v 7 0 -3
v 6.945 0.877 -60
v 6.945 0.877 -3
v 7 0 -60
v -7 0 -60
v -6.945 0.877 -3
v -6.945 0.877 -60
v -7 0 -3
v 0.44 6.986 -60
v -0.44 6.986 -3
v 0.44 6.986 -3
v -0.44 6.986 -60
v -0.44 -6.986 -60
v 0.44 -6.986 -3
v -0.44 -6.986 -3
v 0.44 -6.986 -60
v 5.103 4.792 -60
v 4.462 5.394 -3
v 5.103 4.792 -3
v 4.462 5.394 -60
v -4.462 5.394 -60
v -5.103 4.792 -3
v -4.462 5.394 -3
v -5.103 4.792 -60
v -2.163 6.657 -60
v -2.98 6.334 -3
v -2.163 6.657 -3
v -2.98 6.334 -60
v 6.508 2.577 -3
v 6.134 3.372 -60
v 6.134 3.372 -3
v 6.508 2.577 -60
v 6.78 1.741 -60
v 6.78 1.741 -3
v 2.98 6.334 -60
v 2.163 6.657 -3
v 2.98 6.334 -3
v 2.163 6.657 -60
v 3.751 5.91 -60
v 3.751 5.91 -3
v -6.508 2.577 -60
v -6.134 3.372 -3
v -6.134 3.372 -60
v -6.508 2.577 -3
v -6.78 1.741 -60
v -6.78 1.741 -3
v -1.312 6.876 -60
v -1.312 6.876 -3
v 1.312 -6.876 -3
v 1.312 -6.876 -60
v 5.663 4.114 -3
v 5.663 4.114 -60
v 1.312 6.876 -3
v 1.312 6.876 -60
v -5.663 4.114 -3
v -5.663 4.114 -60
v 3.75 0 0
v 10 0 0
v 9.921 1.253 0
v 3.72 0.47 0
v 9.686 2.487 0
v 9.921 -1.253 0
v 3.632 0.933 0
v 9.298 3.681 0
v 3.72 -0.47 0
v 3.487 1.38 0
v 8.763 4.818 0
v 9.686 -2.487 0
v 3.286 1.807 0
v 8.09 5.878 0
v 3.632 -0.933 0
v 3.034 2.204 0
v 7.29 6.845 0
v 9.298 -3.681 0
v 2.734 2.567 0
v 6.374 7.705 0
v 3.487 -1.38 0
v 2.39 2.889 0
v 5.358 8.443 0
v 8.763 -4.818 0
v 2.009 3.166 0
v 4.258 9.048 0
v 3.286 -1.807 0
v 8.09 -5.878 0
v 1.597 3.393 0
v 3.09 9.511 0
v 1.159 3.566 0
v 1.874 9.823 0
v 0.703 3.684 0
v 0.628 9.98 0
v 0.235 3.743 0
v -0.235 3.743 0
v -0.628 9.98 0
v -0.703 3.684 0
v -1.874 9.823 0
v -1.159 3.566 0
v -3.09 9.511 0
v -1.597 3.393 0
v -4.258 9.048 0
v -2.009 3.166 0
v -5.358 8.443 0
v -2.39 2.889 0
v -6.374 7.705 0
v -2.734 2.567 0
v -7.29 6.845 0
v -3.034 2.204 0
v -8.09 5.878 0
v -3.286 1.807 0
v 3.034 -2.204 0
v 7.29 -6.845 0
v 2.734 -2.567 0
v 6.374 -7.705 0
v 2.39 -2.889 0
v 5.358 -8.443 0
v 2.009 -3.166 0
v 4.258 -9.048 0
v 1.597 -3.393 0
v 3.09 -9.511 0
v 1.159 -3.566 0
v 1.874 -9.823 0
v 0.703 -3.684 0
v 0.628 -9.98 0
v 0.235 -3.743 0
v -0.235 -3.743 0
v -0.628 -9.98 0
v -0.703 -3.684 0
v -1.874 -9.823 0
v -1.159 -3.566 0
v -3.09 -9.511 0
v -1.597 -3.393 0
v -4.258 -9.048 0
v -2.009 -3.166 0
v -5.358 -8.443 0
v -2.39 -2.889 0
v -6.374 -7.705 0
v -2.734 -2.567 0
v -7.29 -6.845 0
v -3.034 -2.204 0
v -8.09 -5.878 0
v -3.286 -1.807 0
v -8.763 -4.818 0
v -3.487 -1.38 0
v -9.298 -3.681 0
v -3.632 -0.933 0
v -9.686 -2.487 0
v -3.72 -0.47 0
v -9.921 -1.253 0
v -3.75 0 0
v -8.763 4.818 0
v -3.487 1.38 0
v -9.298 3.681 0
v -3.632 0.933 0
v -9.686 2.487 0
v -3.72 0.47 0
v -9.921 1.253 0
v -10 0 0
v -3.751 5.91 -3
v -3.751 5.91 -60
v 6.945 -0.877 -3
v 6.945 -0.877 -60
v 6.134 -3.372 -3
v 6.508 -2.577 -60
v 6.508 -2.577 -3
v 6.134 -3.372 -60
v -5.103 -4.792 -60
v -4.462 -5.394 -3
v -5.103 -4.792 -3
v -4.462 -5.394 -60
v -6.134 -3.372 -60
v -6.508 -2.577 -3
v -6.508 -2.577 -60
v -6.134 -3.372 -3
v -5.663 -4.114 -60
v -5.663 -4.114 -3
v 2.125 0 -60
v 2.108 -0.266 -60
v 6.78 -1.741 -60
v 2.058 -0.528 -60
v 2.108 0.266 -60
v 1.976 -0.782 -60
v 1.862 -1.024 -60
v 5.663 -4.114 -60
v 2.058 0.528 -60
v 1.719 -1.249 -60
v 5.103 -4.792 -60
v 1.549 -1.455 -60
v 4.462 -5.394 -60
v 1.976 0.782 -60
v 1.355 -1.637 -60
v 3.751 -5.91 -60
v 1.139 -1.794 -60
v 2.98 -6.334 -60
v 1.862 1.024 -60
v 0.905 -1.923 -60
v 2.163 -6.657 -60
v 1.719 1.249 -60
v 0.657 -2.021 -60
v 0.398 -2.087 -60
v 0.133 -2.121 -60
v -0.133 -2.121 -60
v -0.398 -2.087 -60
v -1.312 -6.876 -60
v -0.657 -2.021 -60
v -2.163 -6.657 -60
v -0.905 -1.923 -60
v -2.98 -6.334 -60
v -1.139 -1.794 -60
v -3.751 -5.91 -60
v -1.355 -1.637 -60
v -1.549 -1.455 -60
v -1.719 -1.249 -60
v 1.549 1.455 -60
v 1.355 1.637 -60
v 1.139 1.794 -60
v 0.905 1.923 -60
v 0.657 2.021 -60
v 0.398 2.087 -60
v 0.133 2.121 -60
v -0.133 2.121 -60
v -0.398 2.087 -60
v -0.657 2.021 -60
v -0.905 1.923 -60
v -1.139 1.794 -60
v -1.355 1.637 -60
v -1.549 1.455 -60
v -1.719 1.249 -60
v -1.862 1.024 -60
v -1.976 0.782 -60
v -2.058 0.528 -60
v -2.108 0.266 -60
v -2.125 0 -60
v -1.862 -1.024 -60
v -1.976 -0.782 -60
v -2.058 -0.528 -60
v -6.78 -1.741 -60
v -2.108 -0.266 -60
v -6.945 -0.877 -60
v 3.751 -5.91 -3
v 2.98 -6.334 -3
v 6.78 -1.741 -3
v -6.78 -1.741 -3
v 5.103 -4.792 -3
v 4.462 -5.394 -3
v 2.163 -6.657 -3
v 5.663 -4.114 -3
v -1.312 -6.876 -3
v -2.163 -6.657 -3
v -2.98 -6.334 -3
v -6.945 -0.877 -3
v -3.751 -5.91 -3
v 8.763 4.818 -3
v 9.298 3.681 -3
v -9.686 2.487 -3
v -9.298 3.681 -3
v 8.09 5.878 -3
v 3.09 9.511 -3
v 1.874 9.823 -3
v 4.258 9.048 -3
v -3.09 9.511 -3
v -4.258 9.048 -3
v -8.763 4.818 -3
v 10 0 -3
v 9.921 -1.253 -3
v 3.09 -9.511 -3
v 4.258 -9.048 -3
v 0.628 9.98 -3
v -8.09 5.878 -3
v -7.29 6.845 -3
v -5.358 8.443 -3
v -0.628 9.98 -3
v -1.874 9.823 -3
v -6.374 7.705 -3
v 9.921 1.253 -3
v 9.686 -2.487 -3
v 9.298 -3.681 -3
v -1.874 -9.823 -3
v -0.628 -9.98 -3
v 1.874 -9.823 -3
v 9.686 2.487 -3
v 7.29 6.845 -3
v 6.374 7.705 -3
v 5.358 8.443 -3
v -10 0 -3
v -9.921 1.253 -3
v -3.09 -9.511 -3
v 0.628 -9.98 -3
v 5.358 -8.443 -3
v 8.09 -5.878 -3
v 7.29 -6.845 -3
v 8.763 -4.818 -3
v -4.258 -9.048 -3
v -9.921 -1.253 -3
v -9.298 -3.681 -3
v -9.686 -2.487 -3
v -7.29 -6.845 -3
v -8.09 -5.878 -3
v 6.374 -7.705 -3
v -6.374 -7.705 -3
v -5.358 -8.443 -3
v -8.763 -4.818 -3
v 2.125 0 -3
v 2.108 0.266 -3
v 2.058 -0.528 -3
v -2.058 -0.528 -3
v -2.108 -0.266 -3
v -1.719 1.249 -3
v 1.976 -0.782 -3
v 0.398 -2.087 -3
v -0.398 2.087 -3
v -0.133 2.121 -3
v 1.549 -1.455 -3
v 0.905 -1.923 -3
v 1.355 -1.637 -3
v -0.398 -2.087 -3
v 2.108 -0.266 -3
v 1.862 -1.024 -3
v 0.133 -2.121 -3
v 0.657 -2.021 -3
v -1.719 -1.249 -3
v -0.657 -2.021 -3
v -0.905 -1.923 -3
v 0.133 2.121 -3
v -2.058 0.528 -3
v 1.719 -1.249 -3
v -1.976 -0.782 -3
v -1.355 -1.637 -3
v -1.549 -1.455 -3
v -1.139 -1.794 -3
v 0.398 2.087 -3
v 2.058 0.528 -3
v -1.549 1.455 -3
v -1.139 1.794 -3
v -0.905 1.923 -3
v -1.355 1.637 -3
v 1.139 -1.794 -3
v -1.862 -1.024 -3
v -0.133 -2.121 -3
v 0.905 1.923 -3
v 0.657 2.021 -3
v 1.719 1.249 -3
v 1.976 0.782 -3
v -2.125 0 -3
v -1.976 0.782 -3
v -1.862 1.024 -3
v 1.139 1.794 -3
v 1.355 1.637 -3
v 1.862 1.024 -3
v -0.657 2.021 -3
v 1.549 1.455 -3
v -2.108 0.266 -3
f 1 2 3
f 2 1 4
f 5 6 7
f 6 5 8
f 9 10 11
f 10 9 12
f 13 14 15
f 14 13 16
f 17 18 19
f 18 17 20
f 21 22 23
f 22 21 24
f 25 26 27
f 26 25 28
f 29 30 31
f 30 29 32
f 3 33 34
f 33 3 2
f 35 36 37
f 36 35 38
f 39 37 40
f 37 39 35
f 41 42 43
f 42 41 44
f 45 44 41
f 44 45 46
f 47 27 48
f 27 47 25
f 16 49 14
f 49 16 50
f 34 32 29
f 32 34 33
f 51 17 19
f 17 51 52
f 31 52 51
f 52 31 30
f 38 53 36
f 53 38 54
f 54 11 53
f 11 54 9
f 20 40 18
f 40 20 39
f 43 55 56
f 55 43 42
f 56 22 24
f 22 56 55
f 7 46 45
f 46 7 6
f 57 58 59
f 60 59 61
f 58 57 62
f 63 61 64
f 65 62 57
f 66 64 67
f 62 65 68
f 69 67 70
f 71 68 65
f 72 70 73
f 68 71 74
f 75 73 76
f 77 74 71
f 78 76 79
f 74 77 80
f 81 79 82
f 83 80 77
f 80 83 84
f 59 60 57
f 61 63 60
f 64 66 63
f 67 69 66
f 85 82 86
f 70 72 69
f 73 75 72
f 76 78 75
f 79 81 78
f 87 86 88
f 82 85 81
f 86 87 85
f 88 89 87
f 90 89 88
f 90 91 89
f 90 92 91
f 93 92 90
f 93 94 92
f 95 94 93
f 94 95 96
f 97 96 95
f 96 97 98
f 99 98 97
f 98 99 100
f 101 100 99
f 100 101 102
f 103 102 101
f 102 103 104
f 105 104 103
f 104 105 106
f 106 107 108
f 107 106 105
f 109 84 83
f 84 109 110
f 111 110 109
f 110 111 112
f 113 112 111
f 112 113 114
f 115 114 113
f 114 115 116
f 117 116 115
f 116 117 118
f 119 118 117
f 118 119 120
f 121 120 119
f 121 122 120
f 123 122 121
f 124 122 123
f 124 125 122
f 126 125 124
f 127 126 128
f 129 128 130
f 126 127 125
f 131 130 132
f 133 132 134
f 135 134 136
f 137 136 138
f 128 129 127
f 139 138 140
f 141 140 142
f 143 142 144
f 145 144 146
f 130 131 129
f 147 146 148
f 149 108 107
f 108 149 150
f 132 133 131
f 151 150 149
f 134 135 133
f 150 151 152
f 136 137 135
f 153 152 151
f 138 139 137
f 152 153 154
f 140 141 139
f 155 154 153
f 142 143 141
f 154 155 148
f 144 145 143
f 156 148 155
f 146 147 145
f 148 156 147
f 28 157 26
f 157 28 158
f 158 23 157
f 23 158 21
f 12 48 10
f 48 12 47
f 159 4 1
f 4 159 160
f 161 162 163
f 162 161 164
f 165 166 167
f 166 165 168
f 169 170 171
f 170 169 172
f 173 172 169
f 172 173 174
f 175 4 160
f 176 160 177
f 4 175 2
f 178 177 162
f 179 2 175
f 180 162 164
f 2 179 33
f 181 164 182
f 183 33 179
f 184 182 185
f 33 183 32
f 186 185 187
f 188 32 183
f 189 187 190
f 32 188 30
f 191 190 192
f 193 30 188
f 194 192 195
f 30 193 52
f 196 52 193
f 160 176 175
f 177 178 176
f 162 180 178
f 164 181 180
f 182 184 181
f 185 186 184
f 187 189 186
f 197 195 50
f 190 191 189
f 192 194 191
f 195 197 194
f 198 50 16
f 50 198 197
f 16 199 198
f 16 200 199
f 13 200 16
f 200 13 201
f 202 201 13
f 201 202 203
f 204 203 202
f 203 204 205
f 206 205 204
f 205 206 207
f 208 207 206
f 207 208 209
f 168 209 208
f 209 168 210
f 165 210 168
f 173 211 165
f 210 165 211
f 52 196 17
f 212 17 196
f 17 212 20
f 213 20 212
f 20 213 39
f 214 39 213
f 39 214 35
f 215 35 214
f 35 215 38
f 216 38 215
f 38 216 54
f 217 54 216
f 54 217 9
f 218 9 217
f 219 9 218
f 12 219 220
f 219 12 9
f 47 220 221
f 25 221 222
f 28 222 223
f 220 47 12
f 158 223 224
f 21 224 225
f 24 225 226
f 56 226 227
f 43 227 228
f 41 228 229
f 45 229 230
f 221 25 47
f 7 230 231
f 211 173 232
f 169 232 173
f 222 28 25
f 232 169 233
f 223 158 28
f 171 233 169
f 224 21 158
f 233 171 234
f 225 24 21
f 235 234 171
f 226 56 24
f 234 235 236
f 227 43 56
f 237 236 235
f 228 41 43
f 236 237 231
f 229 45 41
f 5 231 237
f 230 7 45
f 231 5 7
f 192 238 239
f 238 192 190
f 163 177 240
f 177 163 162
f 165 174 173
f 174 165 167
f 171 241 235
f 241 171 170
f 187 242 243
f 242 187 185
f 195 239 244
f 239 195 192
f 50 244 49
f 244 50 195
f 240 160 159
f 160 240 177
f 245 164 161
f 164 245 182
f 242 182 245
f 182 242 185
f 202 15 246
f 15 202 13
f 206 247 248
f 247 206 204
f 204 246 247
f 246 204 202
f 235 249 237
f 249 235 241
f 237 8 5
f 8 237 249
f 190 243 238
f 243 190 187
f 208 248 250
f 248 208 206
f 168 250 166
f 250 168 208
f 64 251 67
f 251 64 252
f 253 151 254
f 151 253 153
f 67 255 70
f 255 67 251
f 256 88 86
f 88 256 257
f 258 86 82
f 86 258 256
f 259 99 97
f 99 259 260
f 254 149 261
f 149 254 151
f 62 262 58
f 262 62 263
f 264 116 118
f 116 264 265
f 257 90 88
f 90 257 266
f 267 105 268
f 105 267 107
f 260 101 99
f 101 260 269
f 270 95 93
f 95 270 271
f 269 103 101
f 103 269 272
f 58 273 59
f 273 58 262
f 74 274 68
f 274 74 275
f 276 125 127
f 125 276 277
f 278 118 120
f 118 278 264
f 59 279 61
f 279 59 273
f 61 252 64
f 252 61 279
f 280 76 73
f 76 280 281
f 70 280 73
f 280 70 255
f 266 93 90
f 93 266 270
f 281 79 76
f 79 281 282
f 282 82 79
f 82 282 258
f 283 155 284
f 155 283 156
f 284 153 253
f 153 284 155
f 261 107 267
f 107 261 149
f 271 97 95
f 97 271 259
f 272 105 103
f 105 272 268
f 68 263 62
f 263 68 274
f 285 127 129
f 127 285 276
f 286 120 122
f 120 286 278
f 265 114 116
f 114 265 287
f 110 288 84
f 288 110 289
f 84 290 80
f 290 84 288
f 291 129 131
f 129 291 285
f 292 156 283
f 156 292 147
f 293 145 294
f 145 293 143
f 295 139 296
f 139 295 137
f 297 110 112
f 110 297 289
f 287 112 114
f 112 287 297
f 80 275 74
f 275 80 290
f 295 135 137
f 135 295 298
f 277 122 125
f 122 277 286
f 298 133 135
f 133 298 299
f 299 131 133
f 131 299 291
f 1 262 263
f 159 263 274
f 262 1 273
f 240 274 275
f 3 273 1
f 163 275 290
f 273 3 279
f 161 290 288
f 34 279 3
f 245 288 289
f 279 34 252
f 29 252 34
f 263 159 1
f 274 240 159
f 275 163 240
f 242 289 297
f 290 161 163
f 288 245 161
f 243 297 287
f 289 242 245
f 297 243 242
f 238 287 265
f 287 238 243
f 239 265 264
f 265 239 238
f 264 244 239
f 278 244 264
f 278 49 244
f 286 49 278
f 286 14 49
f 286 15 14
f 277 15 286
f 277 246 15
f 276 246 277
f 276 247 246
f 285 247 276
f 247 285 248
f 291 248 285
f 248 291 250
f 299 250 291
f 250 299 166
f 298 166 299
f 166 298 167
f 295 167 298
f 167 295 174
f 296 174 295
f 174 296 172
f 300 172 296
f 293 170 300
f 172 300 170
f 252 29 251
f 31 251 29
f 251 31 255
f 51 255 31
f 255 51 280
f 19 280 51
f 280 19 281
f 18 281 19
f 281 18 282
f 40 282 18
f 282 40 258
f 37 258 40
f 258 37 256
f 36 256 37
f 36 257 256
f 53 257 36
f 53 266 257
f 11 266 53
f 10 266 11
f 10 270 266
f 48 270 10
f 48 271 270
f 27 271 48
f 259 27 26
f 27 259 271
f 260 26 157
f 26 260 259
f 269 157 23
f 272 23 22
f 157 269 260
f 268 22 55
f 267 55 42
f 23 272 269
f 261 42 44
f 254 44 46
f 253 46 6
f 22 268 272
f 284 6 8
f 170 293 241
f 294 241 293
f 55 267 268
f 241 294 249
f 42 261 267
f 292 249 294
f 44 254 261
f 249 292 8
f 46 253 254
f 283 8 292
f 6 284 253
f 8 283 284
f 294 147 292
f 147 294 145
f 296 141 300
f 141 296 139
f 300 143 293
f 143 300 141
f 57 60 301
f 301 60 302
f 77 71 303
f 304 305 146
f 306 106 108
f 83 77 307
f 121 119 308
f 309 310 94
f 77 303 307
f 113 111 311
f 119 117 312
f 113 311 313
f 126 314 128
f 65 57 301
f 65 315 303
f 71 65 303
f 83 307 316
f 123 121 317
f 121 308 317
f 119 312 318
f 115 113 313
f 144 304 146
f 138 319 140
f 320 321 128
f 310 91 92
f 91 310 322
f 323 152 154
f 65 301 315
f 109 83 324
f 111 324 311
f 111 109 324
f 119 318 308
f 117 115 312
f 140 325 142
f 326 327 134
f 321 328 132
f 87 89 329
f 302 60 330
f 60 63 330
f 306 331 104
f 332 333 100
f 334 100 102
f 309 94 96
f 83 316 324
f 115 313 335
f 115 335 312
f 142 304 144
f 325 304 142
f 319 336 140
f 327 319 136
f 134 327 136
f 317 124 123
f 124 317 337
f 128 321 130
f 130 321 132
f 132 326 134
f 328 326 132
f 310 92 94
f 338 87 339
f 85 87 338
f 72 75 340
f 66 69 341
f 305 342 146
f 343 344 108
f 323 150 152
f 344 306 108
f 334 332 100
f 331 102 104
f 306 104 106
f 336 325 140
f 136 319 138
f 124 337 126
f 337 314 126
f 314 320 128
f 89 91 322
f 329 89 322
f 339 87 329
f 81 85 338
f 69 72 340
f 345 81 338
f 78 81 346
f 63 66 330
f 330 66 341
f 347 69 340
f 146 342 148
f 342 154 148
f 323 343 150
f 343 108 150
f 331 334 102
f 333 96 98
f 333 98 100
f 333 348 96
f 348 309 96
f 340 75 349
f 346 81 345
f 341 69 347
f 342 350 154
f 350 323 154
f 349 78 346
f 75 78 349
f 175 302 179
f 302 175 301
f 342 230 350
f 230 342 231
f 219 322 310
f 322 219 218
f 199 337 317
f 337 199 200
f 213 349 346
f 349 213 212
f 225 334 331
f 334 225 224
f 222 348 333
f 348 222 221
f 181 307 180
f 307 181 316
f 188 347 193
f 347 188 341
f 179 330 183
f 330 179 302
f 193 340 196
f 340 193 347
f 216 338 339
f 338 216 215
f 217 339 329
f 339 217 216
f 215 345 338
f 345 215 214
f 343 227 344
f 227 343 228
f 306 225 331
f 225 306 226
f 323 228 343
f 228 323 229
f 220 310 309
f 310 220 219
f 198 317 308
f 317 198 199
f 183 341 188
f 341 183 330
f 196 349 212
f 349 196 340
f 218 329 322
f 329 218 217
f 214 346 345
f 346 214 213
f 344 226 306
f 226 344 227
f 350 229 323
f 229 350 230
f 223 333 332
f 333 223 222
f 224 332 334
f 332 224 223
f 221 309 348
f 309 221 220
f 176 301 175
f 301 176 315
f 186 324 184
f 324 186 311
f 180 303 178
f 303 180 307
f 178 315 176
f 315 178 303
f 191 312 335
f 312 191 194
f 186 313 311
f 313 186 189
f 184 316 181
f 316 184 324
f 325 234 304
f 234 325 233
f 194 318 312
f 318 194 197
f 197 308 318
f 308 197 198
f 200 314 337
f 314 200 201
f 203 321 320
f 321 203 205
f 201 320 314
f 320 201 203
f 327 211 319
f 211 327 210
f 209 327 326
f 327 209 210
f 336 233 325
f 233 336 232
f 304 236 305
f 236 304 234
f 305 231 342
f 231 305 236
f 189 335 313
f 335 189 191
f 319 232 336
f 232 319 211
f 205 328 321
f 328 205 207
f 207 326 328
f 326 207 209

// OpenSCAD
$fn = 50;


difference() {
	union() {
		translate(v = [0, 0, -60.0000000000]) {
			cylinder(h = 60, r = 7.0000000000);
		}
		translate(v = [0, 0, -3.0000000000]) {
			cylinder(h = 3, r = 10.0000000000);
		}
	}
	union() {
		translate(v = [0, 0, 0]) {
			rotate(a = [0, 0, 0]) {
				difference() {
					union() {
						#translate(v = [0, 0, -60.0000000000]) {
							cylinder(h = 60, r = 2.0000000000);
						}
						#translate(v = [0, 0, -3]) {
							cylinder(h = 3, r1 = 2.1250000000, r2 = 3.7500000000);
						}
						#translate(v = [0, 0, -60.0000000000]) {
							cylinder(h = 60, r = 2.1250000000);
						}
						#translate(v = [0, 0, -60.0000000000]) {
							cylinder(h = 60, r = 2.0000000000);
						}
					}
					union();
				}
			}
		}
	}
}
